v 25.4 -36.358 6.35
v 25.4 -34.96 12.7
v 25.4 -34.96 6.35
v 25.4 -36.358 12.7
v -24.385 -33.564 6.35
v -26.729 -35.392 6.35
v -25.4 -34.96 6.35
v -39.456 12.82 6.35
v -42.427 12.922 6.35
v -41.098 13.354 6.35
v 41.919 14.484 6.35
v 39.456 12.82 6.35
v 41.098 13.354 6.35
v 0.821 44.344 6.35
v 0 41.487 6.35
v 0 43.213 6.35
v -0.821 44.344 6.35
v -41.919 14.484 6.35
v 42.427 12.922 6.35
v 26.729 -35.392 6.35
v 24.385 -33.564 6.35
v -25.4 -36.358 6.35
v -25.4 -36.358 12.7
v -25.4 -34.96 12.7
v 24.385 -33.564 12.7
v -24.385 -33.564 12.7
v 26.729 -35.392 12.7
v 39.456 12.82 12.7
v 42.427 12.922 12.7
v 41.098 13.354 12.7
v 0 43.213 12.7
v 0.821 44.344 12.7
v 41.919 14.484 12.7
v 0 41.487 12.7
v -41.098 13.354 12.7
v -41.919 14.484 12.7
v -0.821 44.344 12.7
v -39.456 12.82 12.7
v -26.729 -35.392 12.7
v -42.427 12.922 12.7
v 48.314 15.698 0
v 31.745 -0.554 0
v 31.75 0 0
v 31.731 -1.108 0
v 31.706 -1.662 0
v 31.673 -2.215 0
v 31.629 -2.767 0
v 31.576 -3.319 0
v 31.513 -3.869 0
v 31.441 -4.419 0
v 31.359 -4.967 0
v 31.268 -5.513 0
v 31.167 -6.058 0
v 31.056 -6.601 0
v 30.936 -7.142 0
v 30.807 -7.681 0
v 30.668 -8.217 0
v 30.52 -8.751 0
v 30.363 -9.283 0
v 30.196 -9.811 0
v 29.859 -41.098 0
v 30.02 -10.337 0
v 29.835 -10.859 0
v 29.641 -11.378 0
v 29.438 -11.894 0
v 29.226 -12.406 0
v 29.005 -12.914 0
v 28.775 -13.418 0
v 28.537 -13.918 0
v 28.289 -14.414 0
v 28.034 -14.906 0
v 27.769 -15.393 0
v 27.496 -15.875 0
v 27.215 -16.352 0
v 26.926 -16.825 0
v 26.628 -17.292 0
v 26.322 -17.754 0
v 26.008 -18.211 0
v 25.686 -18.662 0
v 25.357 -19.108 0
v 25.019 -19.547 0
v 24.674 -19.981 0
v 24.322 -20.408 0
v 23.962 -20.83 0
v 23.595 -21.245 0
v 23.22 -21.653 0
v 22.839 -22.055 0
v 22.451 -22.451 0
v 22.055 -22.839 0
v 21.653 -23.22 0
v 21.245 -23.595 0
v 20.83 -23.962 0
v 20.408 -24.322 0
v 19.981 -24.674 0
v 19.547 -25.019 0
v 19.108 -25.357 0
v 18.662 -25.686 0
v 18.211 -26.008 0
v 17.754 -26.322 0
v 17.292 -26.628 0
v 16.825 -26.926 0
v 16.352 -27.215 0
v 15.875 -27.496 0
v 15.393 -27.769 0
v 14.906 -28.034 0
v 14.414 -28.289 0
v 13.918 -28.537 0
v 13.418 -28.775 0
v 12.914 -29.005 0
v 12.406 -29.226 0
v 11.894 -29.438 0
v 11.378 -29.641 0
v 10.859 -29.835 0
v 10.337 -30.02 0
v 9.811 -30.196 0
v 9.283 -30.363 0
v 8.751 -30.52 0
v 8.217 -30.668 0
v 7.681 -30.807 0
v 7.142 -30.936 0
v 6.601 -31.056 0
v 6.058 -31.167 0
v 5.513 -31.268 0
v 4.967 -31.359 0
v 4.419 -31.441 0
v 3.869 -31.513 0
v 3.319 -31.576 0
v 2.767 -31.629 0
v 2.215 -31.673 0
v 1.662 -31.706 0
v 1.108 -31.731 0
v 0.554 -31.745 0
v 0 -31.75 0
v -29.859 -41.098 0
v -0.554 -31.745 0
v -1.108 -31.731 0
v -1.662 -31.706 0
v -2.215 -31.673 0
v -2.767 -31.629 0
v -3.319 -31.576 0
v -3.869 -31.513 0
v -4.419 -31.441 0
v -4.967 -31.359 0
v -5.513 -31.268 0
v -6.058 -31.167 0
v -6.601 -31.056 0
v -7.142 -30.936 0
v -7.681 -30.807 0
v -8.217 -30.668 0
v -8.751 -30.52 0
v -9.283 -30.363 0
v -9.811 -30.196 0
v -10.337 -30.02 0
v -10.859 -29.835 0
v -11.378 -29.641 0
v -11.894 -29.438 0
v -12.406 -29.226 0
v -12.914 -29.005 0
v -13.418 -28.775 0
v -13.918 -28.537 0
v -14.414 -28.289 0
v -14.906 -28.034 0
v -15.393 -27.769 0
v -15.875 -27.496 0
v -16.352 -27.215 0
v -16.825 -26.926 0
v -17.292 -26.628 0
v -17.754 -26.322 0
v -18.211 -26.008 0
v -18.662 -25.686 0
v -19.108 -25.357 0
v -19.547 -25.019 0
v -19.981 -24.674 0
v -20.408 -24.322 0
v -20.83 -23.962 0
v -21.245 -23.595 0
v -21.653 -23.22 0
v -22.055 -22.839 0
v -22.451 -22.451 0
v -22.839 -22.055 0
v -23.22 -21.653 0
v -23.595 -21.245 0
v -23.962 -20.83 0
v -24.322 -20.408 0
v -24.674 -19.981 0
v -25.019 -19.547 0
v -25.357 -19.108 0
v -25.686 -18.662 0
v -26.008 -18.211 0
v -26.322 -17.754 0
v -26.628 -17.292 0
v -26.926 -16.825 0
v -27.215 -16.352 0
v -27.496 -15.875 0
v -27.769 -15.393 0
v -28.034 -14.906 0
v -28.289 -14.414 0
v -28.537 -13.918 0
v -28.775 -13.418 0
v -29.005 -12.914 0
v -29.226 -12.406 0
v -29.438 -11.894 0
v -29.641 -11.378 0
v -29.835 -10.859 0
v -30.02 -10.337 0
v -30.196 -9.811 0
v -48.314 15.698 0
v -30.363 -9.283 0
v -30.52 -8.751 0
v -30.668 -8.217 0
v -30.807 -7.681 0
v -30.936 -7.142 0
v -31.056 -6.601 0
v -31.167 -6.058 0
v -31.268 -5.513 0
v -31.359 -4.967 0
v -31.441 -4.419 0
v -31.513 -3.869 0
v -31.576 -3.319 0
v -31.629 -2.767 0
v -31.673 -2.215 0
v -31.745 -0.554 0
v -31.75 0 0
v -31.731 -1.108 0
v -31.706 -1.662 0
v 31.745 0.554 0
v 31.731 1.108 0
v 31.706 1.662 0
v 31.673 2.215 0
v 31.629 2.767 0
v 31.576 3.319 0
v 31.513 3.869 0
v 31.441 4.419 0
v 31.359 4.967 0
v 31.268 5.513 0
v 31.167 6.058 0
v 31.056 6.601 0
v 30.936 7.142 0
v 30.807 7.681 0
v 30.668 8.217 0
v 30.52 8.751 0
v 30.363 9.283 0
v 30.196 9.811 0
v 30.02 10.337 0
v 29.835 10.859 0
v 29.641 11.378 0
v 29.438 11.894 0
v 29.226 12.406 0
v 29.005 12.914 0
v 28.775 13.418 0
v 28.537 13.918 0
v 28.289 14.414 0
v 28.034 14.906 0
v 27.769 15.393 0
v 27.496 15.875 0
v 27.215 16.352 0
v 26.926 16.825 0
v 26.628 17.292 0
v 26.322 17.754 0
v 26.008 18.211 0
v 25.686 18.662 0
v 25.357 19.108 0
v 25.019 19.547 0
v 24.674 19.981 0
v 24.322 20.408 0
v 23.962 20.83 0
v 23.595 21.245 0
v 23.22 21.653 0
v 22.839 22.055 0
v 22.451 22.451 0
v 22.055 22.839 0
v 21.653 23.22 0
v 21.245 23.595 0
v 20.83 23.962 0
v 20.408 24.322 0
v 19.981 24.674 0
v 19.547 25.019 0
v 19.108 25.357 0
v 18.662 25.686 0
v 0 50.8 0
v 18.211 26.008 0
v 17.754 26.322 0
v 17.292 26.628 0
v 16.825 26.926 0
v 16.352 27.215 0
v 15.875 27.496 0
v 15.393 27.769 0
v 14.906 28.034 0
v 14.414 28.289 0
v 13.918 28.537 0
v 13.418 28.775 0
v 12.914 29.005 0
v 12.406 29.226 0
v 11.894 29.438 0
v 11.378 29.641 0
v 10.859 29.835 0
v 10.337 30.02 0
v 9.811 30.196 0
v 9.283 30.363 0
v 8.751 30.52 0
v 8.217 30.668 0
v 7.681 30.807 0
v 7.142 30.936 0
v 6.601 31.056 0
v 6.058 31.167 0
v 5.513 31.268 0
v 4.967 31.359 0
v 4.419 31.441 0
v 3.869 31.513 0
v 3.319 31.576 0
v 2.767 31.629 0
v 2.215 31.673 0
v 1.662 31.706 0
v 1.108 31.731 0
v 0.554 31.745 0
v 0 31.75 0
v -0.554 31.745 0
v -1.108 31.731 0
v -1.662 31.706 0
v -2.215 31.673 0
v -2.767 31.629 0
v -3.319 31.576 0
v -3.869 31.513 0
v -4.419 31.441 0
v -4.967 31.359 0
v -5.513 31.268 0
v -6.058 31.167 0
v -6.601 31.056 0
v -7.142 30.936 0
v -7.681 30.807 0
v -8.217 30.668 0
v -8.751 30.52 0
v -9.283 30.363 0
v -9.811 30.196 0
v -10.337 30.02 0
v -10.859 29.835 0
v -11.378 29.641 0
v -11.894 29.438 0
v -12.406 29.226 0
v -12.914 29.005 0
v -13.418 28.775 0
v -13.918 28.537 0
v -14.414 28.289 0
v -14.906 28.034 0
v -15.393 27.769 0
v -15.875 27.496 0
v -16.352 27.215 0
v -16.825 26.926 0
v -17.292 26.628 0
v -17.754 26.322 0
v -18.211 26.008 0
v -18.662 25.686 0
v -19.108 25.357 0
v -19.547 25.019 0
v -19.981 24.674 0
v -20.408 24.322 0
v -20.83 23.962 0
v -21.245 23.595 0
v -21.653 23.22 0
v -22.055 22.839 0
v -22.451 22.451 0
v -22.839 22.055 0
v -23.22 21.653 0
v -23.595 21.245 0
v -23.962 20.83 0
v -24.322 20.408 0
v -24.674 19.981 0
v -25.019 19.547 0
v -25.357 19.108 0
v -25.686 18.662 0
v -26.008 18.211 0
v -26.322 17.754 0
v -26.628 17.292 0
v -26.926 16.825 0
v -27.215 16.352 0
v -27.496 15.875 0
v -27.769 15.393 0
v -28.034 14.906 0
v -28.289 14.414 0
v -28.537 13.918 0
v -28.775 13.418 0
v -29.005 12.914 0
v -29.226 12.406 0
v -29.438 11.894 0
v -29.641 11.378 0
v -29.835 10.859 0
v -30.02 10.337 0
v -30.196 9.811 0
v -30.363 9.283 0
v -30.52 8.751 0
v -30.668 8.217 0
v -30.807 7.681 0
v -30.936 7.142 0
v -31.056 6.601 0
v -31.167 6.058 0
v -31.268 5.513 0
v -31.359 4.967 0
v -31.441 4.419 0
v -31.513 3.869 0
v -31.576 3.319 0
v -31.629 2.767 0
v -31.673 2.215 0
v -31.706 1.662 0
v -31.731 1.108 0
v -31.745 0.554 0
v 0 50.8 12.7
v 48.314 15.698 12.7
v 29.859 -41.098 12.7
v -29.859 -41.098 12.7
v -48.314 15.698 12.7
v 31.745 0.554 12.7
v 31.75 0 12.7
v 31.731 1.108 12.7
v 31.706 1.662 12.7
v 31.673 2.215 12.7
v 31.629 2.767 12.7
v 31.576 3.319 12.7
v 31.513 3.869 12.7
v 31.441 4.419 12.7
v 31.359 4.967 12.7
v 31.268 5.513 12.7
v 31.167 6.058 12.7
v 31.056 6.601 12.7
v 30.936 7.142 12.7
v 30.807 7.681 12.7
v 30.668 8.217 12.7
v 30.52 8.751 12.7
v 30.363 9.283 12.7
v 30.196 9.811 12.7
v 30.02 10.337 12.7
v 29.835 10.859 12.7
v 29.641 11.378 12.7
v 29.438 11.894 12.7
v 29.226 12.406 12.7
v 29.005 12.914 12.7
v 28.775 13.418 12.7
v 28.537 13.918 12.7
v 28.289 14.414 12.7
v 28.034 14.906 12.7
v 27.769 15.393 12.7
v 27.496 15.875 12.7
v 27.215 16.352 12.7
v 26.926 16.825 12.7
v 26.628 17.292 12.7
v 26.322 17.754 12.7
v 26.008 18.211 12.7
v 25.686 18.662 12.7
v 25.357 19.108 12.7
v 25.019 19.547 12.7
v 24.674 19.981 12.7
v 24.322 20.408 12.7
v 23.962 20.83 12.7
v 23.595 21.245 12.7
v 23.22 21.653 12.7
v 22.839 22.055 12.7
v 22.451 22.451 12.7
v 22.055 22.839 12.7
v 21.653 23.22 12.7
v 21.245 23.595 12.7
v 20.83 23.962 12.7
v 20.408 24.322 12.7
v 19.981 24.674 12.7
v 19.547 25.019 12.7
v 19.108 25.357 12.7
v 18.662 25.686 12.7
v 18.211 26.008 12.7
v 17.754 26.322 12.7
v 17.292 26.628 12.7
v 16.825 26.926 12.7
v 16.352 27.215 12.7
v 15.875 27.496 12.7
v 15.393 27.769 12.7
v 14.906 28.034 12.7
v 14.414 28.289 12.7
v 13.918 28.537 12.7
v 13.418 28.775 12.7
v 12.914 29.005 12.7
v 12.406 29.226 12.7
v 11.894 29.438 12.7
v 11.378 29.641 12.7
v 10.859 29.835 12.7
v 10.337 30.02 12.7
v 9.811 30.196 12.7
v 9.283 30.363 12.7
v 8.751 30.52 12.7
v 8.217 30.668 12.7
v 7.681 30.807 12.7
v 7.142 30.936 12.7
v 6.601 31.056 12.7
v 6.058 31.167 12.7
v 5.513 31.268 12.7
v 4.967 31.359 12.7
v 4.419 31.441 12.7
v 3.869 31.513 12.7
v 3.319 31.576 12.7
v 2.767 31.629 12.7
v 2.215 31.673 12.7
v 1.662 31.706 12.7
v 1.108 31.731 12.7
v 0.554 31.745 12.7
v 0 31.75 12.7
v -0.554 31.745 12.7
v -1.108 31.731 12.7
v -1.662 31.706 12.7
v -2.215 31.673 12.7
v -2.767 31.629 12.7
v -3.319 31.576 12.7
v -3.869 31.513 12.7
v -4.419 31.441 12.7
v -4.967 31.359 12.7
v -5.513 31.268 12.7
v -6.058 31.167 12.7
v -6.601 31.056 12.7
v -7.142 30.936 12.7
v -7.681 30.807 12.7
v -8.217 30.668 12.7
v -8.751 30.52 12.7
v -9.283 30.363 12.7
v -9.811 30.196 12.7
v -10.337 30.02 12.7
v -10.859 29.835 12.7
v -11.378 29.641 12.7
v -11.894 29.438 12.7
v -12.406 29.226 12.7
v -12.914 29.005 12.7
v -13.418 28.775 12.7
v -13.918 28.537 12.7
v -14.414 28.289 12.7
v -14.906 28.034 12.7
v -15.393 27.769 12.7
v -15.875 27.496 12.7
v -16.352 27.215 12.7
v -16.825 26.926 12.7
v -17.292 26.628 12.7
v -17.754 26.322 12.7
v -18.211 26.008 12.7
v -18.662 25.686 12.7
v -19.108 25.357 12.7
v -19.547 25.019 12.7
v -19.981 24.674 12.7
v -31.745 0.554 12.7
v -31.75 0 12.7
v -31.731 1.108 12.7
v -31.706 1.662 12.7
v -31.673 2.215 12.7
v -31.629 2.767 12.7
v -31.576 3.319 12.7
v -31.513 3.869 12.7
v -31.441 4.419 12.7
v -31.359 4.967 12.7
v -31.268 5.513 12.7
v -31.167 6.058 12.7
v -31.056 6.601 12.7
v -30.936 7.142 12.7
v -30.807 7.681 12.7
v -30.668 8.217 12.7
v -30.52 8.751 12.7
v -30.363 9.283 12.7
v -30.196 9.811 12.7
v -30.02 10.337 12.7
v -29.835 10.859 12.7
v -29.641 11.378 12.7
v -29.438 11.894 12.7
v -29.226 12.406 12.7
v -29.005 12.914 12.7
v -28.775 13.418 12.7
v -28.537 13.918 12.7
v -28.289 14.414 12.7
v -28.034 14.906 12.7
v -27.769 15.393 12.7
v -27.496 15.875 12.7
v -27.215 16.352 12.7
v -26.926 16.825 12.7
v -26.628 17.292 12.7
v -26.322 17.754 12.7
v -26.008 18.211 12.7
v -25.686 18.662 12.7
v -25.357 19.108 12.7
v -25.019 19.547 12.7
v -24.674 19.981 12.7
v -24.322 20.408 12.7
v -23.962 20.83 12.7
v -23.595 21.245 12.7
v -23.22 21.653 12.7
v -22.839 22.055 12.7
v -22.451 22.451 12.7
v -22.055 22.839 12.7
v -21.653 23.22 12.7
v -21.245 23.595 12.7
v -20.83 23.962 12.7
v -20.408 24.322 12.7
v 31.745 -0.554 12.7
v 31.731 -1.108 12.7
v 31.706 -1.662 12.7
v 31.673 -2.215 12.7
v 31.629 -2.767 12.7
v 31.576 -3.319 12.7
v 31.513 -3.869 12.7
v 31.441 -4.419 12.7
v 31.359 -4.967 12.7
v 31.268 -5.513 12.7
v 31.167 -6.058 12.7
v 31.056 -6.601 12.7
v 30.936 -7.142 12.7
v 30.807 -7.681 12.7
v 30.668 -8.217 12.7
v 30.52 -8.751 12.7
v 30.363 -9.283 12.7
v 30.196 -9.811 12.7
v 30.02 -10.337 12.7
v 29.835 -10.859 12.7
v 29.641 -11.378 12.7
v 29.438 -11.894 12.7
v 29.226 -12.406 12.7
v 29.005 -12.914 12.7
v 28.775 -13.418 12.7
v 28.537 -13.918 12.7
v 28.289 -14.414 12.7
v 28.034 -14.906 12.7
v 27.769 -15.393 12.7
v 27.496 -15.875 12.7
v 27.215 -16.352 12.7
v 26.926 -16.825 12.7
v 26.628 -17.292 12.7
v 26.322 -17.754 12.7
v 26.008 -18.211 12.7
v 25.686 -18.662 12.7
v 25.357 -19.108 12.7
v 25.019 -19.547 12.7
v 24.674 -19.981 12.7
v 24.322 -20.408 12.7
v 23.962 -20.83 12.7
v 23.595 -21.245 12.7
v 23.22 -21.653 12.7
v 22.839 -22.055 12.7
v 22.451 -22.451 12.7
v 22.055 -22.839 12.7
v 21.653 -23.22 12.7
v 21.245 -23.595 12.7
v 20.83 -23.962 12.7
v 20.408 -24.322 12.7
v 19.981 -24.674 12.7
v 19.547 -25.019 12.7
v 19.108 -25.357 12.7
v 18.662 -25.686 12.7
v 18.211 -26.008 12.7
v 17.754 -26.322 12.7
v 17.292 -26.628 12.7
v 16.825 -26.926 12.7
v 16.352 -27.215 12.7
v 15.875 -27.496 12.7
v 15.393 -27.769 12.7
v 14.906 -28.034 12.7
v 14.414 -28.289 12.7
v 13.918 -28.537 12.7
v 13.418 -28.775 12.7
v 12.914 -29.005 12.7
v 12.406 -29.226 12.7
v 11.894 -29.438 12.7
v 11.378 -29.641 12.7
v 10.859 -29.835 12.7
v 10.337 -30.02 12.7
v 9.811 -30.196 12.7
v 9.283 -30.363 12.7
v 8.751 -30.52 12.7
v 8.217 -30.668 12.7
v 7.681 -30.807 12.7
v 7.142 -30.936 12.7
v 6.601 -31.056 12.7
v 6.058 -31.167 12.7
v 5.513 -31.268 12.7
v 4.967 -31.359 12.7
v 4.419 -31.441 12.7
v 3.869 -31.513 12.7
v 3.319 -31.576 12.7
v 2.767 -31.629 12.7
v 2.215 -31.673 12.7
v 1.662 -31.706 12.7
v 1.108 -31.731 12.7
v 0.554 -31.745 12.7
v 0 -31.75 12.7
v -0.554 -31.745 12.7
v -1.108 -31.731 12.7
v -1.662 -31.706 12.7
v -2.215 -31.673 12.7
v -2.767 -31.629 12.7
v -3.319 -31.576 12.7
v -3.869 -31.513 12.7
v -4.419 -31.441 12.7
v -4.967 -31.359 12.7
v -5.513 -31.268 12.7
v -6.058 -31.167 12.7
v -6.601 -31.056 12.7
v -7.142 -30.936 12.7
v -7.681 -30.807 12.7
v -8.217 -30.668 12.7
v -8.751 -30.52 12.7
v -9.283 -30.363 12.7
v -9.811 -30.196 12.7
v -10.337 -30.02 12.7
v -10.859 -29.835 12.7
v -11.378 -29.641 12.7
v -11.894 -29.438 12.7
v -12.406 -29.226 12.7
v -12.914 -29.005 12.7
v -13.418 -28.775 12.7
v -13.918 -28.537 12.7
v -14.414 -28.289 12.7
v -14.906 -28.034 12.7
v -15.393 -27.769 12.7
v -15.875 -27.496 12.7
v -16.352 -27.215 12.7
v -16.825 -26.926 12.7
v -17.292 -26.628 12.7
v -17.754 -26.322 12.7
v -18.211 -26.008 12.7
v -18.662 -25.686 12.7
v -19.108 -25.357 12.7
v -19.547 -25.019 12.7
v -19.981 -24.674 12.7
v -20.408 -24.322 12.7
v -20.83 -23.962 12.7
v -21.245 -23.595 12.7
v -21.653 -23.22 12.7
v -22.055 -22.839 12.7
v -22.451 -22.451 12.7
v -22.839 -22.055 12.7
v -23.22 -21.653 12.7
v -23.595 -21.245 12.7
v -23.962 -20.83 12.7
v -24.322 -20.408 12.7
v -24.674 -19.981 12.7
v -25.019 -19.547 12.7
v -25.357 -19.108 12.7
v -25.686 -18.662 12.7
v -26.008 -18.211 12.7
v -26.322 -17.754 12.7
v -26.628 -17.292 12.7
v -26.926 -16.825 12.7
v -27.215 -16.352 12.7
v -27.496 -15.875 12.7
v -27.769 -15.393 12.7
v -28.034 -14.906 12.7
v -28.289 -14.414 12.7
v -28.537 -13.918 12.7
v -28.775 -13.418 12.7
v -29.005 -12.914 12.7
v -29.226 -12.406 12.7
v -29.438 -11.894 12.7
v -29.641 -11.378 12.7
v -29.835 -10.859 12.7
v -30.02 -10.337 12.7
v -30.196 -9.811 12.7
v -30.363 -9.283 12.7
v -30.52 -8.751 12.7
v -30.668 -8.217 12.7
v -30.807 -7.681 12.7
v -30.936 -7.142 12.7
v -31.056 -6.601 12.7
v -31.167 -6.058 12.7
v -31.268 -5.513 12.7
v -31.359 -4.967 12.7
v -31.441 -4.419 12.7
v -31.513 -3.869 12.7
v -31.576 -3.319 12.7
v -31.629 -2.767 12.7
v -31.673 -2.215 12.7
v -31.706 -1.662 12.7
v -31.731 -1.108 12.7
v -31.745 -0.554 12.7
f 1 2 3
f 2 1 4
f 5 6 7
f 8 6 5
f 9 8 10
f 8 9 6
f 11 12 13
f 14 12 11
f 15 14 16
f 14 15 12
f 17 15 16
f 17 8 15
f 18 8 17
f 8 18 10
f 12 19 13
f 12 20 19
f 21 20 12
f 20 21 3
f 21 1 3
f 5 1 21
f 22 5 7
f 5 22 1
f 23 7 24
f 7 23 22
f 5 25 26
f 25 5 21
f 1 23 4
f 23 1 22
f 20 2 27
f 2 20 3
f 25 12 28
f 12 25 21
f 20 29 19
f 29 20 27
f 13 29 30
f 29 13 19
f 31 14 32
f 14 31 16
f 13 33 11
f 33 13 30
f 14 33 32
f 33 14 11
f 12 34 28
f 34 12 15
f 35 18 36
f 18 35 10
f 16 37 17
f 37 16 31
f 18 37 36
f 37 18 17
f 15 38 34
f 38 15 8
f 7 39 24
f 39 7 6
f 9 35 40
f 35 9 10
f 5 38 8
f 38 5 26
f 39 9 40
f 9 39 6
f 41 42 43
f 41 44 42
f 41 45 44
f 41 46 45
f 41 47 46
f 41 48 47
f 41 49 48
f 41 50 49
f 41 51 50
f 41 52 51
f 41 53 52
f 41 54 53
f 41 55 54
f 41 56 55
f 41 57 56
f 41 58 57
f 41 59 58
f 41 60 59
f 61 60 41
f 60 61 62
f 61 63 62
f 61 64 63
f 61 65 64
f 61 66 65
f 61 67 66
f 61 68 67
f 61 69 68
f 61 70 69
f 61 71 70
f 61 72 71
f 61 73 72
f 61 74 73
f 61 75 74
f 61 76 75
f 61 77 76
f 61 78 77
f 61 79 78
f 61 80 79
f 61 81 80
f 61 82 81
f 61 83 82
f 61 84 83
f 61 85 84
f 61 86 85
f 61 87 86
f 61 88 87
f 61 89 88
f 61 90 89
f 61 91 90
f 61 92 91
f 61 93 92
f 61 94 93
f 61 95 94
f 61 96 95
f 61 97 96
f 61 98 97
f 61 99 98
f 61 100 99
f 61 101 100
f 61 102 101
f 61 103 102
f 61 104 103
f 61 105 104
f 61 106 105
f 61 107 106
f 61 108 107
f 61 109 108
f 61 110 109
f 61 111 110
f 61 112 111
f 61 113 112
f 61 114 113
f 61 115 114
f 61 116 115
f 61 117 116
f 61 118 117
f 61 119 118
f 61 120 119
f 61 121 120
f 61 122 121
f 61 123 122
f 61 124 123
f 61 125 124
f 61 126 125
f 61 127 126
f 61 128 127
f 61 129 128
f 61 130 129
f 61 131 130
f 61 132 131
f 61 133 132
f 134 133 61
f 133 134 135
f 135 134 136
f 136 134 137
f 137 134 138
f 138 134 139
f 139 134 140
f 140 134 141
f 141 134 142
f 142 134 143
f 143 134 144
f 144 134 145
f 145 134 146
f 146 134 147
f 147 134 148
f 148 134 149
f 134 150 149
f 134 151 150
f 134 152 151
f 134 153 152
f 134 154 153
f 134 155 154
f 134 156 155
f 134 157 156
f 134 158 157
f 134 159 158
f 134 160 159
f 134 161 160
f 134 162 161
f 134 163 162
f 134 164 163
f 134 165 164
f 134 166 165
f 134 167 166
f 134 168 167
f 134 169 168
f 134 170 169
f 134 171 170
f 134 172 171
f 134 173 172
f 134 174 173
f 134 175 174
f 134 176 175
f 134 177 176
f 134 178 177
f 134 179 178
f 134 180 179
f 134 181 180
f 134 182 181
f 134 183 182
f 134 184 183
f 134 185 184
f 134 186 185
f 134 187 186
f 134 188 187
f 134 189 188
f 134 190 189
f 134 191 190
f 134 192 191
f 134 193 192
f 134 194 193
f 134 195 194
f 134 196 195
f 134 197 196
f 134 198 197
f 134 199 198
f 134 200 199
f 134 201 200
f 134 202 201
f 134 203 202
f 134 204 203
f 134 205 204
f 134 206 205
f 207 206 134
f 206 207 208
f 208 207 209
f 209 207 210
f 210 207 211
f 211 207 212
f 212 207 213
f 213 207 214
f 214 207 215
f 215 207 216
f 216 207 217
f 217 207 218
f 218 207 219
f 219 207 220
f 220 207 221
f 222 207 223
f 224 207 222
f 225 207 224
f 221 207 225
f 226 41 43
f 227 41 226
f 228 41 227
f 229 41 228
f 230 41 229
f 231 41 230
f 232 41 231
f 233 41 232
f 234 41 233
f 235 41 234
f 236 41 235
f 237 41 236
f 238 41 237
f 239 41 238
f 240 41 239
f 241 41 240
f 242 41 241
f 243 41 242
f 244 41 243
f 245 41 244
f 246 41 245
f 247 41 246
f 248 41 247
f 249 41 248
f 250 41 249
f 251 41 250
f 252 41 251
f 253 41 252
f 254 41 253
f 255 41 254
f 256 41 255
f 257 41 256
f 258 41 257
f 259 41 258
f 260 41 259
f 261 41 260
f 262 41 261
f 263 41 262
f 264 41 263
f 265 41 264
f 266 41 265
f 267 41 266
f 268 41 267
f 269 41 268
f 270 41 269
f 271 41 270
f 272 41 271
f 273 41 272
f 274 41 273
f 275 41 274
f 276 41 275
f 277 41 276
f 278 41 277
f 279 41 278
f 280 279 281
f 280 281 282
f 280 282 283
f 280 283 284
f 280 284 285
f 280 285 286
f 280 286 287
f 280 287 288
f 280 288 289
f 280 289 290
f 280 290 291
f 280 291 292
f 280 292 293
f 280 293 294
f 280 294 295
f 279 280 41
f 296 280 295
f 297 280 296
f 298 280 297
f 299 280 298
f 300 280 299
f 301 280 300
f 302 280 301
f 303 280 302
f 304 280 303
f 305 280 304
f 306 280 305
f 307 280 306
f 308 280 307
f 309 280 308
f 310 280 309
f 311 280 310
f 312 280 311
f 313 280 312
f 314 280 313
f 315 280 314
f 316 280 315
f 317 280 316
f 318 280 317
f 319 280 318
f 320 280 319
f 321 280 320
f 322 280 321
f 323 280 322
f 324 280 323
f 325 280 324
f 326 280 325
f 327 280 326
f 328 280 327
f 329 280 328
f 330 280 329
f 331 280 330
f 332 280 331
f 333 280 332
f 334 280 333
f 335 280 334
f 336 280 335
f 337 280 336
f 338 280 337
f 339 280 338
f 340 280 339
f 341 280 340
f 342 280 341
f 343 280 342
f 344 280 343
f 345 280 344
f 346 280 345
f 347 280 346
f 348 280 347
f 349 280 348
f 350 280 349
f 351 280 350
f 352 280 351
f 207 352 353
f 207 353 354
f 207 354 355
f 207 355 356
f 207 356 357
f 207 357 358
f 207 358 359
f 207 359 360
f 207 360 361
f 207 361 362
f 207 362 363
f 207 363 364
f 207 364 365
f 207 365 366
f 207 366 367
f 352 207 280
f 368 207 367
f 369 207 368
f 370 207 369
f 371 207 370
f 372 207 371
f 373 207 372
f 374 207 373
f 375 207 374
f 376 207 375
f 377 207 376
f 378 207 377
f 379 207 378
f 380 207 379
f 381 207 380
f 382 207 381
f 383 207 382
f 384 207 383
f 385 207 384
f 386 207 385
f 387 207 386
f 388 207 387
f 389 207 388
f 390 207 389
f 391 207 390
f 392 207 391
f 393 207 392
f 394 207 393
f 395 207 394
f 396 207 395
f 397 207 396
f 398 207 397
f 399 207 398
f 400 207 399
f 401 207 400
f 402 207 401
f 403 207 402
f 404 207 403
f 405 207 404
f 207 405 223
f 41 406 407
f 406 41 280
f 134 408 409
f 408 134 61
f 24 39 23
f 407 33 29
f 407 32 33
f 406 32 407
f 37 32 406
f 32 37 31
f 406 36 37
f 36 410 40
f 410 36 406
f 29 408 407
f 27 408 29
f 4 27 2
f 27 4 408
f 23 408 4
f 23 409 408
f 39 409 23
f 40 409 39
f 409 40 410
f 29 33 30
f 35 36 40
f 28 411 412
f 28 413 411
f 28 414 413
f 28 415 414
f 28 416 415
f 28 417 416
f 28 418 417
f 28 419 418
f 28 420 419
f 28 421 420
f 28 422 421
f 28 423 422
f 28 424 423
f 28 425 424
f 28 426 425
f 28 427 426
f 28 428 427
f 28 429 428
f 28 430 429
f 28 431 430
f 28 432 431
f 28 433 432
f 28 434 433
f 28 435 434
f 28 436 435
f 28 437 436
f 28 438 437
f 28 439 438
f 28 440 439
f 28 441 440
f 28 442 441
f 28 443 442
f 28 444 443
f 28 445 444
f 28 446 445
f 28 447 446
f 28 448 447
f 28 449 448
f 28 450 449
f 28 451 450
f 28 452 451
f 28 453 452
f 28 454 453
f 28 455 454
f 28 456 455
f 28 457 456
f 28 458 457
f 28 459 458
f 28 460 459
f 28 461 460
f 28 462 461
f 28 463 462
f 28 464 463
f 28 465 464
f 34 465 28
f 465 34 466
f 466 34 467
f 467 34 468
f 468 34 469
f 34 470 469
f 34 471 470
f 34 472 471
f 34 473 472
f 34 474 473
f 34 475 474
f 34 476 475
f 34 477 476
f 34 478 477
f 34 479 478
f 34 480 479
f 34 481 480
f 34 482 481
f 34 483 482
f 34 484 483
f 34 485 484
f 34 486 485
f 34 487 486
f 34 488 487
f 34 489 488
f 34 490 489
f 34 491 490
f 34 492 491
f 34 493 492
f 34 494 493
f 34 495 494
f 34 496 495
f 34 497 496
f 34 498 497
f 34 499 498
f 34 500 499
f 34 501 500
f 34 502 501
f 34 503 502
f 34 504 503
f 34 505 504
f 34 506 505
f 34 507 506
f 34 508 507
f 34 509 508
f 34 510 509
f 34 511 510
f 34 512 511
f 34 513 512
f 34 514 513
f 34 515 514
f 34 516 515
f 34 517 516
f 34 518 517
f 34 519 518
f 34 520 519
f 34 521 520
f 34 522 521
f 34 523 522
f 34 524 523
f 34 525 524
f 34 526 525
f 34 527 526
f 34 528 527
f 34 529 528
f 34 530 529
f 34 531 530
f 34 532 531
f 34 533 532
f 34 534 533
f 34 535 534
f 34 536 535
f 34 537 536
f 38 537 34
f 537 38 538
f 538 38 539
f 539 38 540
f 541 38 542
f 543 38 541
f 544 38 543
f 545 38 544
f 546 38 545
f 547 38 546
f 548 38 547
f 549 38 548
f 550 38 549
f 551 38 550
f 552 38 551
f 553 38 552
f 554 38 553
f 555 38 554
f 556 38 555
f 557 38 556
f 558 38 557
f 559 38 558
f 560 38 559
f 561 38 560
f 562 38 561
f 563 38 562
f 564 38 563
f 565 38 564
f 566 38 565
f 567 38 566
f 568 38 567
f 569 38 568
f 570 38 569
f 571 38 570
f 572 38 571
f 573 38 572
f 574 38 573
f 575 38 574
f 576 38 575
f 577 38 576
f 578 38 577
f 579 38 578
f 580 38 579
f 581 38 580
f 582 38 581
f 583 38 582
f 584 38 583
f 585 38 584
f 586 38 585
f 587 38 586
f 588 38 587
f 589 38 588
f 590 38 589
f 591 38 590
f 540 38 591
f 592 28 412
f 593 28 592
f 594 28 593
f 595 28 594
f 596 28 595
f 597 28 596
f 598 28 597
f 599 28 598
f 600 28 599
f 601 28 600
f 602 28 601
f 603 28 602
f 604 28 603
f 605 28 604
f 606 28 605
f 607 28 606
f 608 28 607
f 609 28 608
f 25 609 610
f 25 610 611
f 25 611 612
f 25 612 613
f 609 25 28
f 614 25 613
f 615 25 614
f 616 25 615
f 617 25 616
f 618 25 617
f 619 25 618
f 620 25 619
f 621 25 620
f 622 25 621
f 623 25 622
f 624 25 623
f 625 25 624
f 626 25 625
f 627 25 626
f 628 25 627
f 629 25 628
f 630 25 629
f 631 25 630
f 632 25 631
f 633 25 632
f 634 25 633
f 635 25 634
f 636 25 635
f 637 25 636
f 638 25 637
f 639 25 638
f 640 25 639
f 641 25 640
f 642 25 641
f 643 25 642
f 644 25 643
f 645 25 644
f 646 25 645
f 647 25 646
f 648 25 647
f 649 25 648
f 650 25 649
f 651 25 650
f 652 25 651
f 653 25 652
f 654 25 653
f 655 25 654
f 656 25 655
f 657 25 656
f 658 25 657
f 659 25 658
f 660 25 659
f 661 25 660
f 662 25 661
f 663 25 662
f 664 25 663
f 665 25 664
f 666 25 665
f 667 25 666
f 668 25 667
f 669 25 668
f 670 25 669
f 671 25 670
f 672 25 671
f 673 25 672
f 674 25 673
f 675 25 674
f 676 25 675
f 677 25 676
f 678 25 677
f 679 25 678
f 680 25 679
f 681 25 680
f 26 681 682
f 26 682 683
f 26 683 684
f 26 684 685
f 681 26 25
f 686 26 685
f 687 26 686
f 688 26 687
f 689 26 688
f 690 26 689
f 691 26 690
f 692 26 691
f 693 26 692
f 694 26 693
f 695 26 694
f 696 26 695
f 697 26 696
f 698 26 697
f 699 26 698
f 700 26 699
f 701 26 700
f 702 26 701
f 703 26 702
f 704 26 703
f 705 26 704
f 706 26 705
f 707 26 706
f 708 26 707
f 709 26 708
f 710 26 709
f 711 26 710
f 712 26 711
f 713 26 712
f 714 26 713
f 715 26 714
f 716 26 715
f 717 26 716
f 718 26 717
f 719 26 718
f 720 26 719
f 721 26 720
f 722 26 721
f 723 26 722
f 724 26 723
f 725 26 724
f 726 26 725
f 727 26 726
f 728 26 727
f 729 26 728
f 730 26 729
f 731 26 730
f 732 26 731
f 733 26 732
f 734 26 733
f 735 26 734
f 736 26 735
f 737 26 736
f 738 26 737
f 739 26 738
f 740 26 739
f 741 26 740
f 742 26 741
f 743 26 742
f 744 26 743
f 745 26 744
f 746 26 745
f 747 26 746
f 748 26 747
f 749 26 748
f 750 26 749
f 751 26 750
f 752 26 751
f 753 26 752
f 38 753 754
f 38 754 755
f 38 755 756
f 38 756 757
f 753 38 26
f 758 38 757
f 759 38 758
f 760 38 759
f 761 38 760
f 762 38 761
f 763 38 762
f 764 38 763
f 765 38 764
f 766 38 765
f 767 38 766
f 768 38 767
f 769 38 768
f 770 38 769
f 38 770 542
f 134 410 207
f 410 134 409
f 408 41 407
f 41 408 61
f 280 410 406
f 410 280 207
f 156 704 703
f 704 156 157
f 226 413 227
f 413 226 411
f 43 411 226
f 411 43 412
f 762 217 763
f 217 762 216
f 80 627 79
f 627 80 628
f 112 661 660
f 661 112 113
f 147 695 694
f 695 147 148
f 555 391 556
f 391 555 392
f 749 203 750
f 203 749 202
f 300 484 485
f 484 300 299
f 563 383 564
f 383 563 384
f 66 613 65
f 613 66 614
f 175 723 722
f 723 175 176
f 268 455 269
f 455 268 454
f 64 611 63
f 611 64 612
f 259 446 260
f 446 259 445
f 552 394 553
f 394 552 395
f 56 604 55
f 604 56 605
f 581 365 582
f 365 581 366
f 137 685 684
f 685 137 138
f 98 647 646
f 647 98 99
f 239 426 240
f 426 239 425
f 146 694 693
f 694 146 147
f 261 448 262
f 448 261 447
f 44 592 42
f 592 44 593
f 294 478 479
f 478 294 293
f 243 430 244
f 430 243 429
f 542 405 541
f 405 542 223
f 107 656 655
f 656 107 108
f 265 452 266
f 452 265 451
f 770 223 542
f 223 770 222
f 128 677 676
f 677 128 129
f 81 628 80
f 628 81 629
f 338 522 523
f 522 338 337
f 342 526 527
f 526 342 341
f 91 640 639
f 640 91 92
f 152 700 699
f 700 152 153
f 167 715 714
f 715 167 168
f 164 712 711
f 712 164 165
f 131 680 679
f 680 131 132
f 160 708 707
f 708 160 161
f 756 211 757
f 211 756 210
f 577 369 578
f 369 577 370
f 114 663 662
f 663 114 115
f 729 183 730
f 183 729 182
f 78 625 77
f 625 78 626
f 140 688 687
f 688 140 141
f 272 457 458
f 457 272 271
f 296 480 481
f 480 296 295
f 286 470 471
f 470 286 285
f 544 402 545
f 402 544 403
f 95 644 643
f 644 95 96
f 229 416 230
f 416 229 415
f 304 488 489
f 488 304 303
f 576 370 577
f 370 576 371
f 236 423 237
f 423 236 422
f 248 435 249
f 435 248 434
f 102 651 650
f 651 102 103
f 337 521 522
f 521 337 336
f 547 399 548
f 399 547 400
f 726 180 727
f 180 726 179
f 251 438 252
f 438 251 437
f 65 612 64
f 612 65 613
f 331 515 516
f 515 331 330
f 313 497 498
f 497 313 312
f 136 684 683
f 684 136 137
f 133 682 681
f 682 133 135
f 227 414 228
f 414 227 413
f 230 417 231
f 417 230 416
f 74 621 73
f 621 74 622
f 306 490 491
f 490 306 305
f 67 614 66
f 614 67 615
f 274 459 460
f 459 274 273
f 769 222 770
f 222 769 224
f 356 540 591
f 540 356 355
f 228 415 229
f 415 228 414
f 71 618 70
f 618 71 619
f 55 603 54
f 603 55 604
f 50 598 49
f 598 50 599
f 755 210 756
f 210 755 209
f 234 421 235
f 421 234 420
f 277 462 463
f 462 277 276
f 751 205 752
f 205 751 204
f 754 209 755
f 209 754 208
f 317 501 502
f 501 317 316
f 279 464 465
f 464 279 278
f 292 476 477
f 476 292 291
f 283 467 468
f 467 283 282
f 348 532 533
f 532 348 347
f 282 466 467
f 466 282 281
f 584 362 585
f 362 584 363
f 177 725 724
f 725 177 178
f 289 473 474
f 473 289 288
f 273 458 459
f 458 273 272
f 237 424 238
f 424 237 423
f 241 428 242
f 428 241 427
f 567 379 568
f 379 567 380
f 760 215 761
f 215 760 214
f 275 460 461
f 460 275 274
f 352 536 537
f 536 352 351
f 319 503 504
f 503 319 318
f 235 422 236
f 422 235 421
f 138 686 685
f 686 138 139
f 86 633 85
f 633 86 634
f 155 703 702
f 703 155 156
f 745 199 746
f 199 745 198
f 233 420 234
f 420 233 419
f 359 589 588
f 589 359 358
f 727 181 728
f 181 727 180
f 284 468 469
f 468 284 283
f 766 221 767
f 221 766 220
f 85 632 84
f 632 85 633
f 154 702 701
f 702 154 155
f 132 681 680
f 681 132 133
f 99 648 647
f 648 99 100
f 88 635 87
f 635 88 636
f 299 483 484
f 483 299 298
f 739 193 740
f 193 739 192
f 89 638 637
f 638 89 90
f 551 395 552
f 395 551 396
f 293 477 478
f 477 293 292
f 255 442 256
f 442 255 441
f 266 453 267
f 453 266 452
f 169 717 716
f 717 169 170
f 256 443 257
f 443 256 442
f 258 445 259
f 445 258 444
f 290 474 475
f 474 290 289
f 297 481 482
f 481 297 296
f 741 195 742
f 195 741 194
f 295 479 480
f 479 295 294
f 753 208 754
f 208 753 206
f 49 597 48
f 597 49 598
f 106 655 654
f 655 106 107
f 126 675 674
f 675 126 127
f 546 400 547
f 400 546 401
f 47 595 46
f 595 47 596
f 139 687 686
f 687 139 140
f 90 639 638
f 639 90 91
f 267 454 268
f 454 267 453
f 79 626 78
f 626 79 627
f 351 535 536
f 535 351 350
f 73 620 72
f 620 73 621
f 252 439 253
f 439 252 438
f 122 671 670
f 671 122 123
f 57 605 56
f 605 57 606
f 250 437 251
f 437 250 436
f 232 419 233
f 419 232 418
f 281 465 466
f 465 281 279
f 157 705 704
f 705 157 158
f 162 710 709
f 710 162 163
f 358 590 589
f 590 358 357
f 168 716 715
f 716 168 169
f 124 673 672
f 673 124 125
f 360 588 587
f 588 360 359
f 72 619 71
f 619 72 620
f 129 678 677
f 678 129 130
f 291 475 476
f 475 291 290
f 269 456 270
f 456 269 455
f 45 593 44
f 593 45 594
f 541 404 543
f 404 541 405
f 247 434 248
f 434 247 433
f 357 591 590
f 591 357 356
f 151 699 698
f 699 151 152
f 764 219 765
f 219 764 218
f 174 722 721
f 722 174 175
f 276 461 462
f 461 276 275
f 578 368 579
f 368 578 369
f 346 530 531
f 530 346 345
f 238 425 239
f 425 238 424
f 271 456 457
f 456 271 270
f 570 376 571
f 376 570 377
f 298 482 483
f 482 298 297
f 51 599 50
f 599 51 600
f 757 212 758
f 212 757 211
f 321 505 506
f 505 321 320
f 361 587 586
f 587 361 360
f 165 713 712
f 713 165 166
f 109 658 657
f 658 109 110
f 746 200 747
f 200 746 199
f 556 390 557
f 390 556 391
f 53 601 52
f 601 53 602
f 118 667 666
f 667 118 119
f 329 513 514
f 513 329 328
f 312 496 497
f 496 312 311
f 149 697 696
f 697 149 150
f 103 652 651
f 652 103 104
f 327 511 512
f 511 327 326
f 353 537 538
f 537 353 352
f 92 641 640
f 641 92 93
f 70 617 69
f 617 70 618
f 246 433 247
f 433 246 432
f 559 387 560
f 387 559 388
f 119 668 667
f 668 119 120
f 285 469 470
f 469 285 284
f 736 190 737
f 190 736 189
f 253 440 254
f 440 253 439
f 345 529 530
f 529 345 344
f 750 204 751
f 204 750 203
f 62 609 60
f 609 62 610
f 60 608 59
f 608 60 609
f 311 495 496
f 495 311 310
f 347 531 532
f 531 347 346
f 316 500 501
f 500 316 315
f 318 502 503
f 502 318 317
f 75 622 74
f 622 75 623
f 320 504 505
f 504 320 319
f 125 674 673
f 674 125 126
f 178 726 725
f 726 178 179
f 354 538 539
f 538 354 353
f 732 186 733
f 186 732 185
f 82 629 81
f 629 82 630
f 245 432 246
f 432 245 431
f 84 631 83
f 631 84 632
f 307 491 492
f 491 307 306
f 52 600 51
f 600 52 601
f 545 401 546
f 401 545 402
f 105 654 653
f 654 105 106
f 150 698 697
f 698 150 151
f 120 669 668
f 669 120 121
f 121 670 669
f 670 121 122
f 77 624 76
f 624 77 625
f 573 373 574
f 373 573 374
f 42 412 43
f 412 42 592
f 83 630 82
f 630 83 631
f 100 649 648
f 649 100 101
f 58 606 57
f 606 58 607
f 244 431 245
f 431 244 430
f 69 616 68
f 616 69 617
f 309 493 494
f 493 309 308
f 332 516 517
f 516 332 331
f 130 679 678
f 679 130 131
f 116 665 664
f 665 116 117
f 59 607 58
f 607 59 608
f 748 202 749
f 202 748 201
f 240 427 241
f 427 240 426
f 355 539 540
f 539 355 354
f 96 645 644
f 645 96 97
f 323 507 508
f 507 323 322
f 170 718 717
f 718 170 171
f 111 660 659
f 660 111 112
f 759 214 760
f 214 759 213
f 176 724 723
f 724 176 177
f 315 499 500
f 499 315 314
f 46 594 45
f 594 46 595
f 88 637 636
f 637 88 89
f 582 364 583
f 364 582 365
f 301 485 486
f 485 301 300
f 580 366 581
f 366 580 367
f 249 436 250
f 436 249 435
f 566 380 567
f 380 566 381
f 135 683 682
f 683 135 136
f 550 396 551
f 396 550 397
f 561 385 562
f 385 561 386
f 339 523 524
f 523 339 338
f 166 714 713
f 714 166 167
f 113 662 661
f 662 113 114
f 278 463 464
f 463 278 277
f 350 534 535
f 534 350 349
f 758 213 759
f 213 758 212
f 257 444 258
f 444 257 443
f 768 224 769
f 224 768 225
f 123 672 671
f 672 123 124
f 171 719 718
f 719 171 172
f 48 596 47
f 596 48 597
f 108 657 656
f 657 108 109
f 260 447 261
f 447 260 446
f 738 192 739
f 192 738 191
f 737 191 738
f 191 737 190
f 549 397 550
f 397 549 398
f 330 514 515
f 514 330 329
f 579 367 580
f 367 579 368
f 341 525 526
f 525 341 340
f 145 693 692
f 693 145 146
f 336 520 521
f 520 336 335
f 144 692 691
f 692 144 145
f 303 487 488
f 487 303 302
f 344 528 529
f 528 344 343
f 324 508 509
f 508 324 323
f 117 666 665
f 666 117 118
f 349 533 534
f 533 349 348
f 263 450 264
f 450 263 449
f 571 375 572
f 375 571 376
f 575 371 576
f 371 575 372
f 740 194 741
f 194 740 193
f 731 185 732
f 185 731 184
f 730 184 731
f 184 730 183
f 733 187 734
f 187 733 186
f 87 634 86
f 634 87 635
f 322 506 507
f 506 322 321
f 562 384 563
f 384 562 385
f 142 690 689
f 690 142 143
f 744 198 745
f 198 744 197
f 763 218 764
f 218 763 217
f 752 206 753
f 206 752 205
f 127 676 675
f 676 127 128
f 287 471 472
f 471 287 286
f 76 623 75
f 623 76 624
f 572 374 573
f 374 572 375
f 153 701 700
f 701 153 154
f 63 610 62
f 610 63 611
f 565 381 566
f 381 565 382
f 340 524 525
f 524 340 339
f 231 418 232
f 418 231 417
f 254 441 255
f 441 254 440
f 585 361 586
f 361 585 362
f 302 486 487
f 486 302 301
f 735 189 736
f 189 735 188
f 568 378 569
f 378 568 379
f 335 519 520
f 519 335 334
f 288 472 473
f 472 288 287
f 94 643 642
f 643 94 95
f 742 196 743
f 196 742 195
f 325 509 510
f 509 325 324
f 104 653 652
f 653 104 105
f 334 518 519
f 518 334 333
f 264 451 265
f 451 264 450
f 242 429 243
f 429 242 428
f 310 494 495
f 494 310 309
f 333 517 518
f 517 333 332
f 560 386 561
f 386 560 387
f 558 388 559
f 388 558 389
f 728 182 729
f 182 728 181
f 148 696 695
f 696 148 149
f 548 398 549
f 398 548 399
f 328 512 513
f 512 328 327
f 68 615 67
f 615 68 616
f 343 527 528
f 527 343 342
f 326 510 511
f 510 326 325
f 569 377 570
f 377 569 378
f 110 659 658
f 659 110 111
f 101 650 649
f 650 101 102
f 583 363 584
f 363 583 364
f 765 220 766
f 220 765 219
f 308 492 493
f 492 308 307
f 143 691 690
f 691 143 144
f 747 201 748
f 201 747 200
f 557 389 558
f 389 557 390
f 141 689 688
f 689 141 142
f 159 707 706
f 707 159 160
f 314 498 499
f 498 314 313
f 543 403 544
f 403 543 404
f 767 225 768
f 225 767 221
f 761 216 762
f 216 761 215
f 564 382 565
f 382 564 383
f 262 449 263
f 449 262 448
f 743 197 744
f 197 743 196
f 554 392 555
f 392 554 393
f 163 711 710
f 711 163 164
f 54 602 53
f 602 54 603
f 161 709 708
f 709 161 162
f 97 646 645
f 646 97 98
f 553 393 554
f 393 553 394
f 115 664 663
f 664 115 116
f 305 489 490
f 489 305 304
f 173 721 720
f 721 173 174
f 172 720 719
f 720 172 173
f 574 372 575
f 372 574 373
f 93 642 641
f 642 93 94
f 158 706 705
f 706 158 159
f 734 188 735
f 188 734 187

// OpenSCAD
slidethick = .11;
slidewidth = 2;
slideheight = slidewidth;
r =  1.3764;
roffset = slidethick + r;
outerPent = 2;
platform_height = .5;
holes_z = platform_height - .25;
inner_margin = .125;
cylinder_r = 1.25;
scaling = 25.4;


scale(scaling, scaling, scaling){
    difference(){
        linear_extrude(height = platform_height)
            rotate(90)
                circle(r = outerPent, $fn = 5);
        for(rotateamt = [0:72:360])
            rotate_about_pt(rotateamt,0,[0,0,0])
                translate([0,-r,holes_z + slideheight / 2 ])
                    cube([slidewidth, slidethick, slideheight], center=true);
        cylinder(h= 10, r=cylinder_r, center = true, $fn=360); 

    }
}




module rotate_about_pt(z, y, pt) {
    translate(pt)
        rotate([0, y, z]) // CHANGE HERE
            translate(-pt)
                children();   
}
